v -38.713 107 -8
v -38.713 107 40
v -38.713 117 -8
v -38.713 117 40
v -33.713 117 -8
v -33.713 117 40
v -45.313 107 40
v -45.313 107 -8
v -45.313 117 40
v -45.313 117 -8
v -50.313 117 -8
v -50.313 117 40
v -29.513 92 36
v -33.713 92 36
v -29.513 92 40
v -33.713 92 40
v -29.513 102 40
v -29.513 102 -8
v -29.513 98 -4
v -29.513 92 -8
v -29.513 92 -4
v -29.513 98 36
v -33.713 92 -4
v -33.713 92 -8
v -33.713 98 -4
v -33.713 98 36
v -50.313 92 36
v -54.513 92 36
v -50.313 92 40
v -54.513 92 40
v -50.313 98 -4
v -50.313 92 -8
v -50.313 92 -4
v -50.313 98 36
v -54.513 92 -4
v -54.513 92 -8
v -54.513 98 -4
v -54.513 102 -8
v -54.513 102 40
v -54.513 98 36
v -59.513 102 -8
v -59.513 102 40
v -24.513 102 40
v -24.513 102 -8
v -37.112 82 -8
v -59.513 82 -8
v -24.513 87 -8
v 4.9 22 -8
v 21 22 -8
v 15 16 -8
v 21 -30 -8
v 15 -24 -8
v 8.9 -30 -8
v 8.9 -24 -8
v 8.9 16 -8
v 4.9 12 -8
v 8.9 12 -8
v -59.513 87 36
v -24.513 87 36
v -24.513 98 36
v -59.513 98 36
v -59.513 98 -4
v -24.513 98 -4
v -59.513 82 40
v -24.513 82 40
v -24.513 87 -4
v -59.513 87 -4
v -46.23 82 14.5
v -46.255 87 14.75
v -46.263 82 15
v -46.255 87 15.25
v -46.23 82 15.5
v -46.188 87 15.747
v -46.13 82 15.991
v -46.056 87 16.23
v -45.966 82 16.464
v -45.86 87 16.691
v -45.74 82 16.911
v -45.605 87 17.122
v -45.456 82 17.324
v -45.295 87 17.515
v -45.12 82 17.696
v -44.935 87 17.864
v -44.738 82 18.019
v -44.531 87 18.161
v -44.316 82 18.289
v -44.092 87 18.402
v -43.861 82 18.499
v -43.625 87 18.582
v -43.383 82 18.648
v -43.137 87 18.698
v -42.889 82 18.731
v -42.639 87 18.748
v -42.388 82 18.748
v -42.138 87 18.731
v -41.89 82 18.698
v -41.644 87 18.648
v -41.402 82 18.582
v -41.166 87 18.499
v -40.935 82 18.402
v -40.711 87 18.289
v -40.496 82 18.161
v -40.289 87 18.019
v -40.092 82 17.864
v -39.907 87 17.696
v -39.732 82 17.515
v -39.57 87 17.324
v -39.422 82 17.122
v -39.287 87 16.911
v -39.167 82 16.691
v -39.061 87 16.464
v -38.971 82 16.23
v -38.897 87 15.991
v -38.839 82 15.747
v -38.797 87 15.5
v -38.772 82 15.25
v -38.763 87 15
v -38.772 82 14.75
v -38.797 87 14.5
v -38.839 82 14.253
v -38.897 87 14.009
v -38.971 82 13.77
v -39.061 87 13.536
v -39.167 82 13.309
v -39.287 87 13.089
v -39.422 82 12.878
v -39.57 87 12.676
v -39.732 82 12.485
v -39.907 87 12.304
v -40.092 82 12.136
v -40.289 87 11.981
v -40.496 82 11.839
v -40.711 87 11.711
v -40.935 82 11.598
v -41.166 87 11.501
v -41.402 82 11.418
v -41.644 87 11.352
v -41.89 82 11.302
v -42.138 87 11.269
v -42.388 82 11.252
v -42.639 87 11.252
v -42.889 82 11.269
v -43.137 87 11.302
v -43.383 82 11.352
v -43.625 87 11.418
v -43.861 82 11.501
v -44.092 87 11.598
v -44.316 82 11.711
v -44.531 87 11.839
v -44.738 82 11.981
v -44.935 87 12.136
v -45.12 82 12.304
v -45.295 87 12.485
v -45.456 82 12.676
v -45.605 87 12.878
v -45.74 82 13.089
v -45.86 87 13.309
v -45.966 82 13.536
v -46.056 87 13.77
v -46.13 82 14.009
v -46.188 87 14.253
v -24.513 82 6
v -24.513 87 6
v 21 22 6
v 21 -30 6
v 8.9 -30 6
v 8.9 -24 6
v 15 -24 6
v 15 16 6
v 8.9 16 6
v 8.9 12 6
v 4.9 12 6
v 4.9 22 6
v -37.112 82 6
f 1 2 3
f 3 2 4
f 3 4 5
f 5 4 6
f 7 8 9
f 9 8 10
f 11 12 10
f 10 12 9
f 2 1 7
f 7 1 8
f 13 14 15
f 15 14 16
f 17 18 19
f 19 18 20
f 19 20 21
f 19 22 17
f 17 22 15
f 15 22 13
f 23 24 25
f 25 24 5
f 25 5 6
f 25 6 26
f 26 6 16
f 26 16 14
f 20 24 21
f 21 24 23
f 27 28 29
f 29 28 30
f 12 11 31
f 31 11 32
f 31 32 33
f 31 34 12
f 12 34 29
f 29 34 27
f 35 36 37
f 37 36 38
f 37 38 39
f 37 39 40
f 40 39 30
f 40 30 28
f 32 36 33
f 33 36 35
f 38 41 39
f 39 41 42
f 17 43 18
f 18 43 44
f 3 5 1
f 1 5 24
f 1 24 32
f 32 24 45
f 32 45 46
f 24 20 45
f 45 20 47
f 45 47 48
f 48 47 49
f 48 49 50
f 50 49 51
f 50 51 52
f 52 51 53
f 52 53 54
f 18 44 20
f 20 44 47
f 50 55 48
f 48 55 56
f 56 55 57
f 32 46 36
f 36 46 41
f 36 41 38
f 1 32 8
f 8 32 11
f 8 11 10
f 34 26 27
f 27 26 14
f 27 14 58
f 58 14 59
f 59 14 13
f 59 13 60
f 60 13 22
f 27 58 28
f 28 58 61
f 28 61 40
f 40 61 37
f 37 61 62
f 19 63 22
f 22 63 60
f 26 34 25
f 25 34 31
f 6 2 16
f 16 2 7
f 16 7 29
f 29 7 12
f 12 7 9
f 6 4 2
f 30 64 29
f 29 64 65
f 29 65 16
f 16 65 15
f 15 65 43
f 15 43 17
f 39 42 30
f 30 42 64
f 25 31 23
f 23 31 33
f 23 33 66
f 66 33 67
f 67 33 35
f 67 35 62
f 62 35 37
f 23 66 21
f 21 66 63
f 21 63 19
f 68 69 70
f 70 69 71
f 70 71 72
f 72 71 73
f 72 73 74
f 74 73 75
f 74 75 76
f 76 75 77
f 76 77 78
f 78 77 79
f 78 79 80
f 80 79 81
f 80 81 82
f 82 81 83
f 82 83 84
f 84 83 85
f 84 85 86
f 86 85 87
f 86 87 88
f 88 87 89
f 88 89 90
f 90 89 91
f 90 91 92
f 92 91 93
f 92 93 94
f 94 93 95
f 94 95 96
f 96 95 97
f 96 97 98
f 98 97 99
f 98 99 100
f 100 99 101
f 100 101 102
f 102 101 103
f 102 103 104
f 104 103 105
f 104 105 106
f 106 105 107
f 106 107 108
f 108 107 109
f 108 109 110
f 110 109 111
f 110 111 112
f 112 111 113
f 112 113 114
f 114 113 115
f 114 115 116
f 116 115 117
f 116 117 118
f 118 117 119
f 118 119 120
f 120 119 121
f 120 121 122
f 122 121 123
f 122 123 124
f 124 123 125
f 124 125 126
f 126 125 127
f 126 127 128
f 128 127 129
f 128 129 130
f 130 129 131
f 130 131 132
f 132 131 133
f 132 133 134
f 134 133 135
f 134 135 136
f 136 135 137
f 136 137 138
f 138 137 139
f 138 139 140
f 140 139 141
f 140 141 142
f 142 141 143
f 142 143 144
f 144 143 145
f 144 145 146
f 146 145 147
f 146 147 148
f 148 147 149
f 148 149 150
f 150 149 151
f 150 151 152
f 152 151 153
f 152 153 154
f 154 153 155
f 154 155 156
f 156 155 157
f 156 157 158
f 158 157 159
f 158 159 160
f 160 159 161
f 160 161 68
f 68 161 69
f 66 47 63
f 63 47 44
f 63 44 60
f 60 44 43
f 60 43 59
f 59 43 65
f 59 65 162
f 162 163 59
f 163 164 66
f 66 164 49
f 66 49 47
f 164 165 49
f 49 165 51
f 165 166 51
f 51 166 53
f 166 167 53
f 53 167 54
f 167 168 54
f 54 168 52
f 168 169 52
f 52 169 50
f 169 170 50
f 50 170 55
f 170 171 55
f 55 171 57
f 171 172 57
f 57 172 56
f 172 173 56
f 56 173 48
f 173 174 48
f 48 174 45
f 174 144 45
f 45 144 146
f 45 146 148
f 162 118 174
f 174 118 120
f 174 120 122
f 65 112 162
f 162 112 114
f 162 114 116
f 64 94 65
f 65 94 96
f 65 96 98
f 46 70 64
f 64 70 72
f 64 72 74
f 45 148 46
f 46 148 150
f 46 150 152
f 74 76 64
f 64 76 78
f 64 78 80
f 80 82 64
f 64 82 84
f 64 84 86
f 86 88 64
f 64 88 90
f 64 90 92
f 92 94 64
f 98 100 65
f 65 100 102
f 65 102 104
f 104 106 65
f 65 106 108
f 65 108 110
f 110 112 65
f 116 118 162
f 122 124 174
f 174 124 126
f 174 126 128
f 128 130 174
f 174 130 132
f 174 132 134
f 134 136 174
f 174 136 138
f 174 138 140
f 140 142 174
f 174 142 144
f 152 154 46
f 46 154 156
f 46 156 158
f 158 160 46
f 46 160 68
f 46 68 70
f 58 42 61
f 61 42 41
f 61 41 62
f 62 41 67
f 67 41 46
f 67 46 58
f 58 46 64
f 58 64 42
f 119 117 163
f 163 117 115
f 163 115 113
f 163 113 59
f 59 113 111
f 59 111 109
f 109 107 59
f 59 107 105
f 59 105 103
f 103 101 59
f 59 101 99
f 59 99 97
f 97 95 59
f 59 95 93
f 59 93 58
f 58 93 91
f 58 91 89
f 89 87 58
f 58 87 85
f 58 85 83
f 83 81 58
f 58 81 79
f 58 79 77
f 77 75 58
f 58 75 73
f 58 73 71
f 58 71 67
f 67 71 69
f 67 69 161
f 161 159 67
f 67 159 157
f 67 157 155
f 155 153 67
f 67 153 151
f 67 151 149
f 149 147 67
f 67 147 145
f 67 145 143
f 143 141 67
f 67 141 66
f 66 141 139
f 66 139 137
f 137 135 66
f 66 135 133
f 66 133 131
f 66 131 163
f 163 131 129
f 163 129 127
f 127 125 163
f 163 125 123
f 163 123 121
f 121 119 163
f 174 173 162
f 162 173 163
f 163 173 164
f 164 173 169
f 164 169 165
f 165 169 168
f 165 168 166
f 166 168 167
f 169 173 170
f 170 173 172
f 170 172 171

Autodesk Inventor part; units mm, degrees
ref_plane "YZ Plane" through (0, 0, 0) normal (1, 0, 0) x (0, 1, 0)
ref_plane "XZ Plane" through (0, 0, 0) normal (0, 1, 0) x (-1, 0, 0)
ref_plane "XY Plane" through (0, 0, 0) normal (0, 0, 1) x (1, 0, 0)
sketch "Náčrt1" plane through (0, 0, 0) normal (0, 0, 1) x (1, 0, 0)
  line L0 (21, 22) -> (21, -30)
  line L1 (21, -30) -> (8.9, -30)
  line L2 (8.9, -30) -> (8.9, -24)
  line L3 (8.9, -24) -> (15, -24)
  line L4 (15, -24) -> (15, 16)
  line L5 (15, 16) -> (8.9, 16)
  line L6 (8.9, 16) -> (8.9, 12)
  line L7 (8.9, 12) -> (4.9, 12)
  line L8 (4.9, 12) -> (4.9, 22)
  line L9 (4.9, 22) -> (-37.1125, 82)
  line L10 (-24.5135, 87) -> (21, 22)
  line L11 (-37.1125, 82) -> (-59.5135, 82)
  line L12 (-59.5135, 82) -> (-59.5135, 87)
  line L13 (-59.5135, 87) -> (-24.5135, 87)
  point P0 (0, 0)
  dimension "d10" = 40
  dimension "d14" = 6.1
  dimension "d15" = 4
  dimension "d16" = 4
  dimension "d28" = 6
  dimension "d29" = 12.1
  dimension "d30" = 6
  dimension "d31" = 6.1
  dimension "d32" = 145
  dimension "d33" = 15
  dimension "d34" = 145
  dimension "d35" = 52
  dimension "d36" = 10
  dimension "d37" = 30
  dimension "d40" = 60
  dimension "d41" = 65
  dimension "d43" = 35
  dimension "d44" = 5
extrude "Vysunutí1" add sketch "Náčrt1" along normal blind 6 and the other way blind 4
sketch "Náčrt2" plane through (0, 0, 6) normal (0, 0, 1) x (1, 0, 0)
  line L0 (-59.5135, 82) -> (-37.1125, 82) projected
  line L1 (-24.5135, 87) -> (-59.5135, 87) projected
  line L2 (-59.5135, 82) -> (-24.5135, 82)
  line L3 (-24.5135, 82) -> (-24.5135, 87)
  line L4 (-24.5135, 87) -> (-59.5135, 87)
  line L5 (-59.5135, 87) -> (-59.5135, 82)
  point P0 (0, 0)
extrude "Vysunutí2" add sketch "Náčrt2" along normal blind 30
sketch "Náčrt3" plane through (-59.5135, 87, -4) normal (0, 1, 0) x (1, 0, 0)
  circle A0 centre (17, -19) radius 3.75
  line L0 (0, 0) -> (35, 0) projected
  line L1 (35, -10) -> (35, -40) projected
  point P0 (59.5135, -4)
  dimension "d49" = 7.5
  dimension "d50" = 19
  dimension "d51" = 18
extrude "Vysunutí3" cut sketch "Náčrt3" against normal blind 30
sketch "Náčrt4" plane through (-59.5135, 82, -4) normal (0, -1, 0) x (1, 0, 0)
  line L0 (0, 40) -> (35, 40) projected
  line L1 (35, 40) -> (0, 40)
  line L2 (0, 40) -> (0, 44)
  line L3 (0, 44) -> (35, 44)
  line L4 (35, 44) -> (35, 40)
  line L5 (0, 0) -> (35, 0)
  line L6 (35, 0) -> (35, -4)
  line L7 (35, -4) -> (0, -4)
  line L8 (0, -4) -> (0, 0)
  line L9 (22.401, 0) -> (0, 0) projected
  point P0 (59.5135, 4)
  dimension "d54" = 4
  dimension "d55" = 4
  dimension "d57" = 35
  dimension "d58" = 35
extrude "Vysunutí4" add sketch "Náčrt4" against normal blind 16
sketch "Náčrt5" plane through (-59.5135, 82, 40) normal (0, 0, 1) x (1, 0, 0)
  line L0 (0, 16) -> (35, 16) projected
  line L1 (0, 16) -> (35, 16)
  line L2 (35, 16) -> (35, 20)
  line L3 (35, 20) -> (0, 20)
  line L4 (0, 20) -> (0, 16)
  point P0 (59.5135, -82)
  dimension "d61" = 35
  dimension "d62" = 4
extrude "Vysunutí5" add sketch "Náčrt5" against normal blind 48
sketch "Náčrt6" plane through (-59.5135, 82, 40) normal (0, 0, 1) x (1, 0, 0)
  line L0 (5, 20) -> (9.2, 20)
  line L1 (9.2, 20) -> (9.2, 10)
  line L2 (9.2, 10) -> (5, 10)
  line L3 (5, 10) -> (5, 20)
  line L4 (25.8, 20) -> (30, 20)
  line L5 (30, 20) -> (30, 10)
  line L6 (30, 10) -> (25.8, 10)
  line L7 (25.8, 10) -> (25.8, 20)
  line L8 (35, 20) -> (0, 20) projected
  line L9 (0, 0) -> (0, 20) projected
  line L10 (35, 0) -> (35, 20) projected
  point P0 (59.5135, -82)
  dimension "d65" = 5
  dimension "d66" = 4.2
  dimension "d67" = 5
  dimension "d68" = 4.2
  dimension "d69" = 10
  dimension "d70" = 10
extrude "Vysunutí6" cut sketch "Náčrt6" against normal blind 50
sketch "Náčrt8" plane through (-50.3135, 102, 40) normal (0, 1, 0) x (1, 0, 0)
  line L0 (0, 48) -> (0, 0) projected
  line L1 (16.6, 0) -> (0, 0) projected
  line L2 (0, 48) -> (16.6, 48)
  line L3 (16.6, 48) -> (16.6, 0)
  line L4 (16.6, 0) -> (0, 0)
  line L5 (0, 0) -> (0, 48)
  point P0 (50.3135, 40)
extrude "Vysunutí7" add sketch "Náčrt8" along normal blind 5
sketch "Náčrt9" plane through (-50.3135, 107, 40) normal (0, 1, 0) x (1, 0, 0)
  line L0 (0, 48) -> (0, 0) projected
  line L1 (25.8, 0) -> (-9.2, 0) projected
  line L2 (0, 48) -> (5, 48)
  line L3 (5, 48) -> (5, 0)
  line L4 (5, 0) -> (0, 0)
  line L5 (0, 0) -> (0, 48)
  line L6 (16.6, 48) -> (11.6, 48)
  line L7 (11.6, 48) -> (11.6, 0)
  line L8 (11.6, 0) -> (16.6, 0)
  line L9 (16.6, 0) -> (16.6, 48)
  point P0 (50.3135, 40)
  point P1 (16.6, 0)
  dimension "d75" = 5
  dimension "d76" = 5
extrude "Vysunutí8" add sketch "Náčrt9" along normal blind 10
sketch "Náčrt11" plane through (0, 0, -4) normal (0, 0, -1) x (-1, 0, 0)
  line L0 (37.1125, 82) -> (-4.9, 22) projected
  line L1 (37.1125, 82) -> (-4.9, 22)
  line L2 (-4.9, 22) -> (-4.9, 12) projected
  line L3 (-4.9, 22) -> (-4.9, 12)
  line L4 (-4.9, 12) -> (-8.9, 12) projected
  line L5 (-4.9, 12) -> (-8.9, 12)
  line L6 (-8.9, 12) -> (-8.9, 16) projected
  line L7 (-8.9, 12) -> (-8.9, 16)
  line L8 (-8.9, 16) -> (-15, 16) projected
  line L9 (-8.9, 16) -> (-15, 16)
  line L10 (-15, 16) -> (-15, -24) projected
  line L11 (-15, 16) -> (-15, -24)
  line L12 (-15, -24) -> (-8.9, -24) projected
  line L13 (-15, -24) -> (-8.9, -24)
  line L14 (-8.9, -24) -> (-8.9, -30) projected
  line L15 (-8.9, -24) -> (-8.9, -30)
  line L16 (-8.9, -30) -> (-21, -30) projected
  line L17 (-8.9, -30) -> (-21, -30)
  line L18 (-21, -30) -> (-21, 22) projected
  line L19 (-21, -30) -> (-21, 22)
  line L20 (24.5135, 87) -> (59.5135, 87) projected
  line L21 (-21, 22) -> (24.5135, 87)
  line L22 (24.5135, 82) -> (24.5135, 102) projected
  line L23 (24.5135, 87) -> (24.5135, 82)
  line L24 (24.5135, 82) -> (37.1125, 82)
  line L25 (24.5135, 82) -> (59.5135, 82) projected
  point P0 (0, 0)
extrude "Vysunutí9" add sketch "Náčrt11" along normal blind 4
properties part number "DrzakKamera"
